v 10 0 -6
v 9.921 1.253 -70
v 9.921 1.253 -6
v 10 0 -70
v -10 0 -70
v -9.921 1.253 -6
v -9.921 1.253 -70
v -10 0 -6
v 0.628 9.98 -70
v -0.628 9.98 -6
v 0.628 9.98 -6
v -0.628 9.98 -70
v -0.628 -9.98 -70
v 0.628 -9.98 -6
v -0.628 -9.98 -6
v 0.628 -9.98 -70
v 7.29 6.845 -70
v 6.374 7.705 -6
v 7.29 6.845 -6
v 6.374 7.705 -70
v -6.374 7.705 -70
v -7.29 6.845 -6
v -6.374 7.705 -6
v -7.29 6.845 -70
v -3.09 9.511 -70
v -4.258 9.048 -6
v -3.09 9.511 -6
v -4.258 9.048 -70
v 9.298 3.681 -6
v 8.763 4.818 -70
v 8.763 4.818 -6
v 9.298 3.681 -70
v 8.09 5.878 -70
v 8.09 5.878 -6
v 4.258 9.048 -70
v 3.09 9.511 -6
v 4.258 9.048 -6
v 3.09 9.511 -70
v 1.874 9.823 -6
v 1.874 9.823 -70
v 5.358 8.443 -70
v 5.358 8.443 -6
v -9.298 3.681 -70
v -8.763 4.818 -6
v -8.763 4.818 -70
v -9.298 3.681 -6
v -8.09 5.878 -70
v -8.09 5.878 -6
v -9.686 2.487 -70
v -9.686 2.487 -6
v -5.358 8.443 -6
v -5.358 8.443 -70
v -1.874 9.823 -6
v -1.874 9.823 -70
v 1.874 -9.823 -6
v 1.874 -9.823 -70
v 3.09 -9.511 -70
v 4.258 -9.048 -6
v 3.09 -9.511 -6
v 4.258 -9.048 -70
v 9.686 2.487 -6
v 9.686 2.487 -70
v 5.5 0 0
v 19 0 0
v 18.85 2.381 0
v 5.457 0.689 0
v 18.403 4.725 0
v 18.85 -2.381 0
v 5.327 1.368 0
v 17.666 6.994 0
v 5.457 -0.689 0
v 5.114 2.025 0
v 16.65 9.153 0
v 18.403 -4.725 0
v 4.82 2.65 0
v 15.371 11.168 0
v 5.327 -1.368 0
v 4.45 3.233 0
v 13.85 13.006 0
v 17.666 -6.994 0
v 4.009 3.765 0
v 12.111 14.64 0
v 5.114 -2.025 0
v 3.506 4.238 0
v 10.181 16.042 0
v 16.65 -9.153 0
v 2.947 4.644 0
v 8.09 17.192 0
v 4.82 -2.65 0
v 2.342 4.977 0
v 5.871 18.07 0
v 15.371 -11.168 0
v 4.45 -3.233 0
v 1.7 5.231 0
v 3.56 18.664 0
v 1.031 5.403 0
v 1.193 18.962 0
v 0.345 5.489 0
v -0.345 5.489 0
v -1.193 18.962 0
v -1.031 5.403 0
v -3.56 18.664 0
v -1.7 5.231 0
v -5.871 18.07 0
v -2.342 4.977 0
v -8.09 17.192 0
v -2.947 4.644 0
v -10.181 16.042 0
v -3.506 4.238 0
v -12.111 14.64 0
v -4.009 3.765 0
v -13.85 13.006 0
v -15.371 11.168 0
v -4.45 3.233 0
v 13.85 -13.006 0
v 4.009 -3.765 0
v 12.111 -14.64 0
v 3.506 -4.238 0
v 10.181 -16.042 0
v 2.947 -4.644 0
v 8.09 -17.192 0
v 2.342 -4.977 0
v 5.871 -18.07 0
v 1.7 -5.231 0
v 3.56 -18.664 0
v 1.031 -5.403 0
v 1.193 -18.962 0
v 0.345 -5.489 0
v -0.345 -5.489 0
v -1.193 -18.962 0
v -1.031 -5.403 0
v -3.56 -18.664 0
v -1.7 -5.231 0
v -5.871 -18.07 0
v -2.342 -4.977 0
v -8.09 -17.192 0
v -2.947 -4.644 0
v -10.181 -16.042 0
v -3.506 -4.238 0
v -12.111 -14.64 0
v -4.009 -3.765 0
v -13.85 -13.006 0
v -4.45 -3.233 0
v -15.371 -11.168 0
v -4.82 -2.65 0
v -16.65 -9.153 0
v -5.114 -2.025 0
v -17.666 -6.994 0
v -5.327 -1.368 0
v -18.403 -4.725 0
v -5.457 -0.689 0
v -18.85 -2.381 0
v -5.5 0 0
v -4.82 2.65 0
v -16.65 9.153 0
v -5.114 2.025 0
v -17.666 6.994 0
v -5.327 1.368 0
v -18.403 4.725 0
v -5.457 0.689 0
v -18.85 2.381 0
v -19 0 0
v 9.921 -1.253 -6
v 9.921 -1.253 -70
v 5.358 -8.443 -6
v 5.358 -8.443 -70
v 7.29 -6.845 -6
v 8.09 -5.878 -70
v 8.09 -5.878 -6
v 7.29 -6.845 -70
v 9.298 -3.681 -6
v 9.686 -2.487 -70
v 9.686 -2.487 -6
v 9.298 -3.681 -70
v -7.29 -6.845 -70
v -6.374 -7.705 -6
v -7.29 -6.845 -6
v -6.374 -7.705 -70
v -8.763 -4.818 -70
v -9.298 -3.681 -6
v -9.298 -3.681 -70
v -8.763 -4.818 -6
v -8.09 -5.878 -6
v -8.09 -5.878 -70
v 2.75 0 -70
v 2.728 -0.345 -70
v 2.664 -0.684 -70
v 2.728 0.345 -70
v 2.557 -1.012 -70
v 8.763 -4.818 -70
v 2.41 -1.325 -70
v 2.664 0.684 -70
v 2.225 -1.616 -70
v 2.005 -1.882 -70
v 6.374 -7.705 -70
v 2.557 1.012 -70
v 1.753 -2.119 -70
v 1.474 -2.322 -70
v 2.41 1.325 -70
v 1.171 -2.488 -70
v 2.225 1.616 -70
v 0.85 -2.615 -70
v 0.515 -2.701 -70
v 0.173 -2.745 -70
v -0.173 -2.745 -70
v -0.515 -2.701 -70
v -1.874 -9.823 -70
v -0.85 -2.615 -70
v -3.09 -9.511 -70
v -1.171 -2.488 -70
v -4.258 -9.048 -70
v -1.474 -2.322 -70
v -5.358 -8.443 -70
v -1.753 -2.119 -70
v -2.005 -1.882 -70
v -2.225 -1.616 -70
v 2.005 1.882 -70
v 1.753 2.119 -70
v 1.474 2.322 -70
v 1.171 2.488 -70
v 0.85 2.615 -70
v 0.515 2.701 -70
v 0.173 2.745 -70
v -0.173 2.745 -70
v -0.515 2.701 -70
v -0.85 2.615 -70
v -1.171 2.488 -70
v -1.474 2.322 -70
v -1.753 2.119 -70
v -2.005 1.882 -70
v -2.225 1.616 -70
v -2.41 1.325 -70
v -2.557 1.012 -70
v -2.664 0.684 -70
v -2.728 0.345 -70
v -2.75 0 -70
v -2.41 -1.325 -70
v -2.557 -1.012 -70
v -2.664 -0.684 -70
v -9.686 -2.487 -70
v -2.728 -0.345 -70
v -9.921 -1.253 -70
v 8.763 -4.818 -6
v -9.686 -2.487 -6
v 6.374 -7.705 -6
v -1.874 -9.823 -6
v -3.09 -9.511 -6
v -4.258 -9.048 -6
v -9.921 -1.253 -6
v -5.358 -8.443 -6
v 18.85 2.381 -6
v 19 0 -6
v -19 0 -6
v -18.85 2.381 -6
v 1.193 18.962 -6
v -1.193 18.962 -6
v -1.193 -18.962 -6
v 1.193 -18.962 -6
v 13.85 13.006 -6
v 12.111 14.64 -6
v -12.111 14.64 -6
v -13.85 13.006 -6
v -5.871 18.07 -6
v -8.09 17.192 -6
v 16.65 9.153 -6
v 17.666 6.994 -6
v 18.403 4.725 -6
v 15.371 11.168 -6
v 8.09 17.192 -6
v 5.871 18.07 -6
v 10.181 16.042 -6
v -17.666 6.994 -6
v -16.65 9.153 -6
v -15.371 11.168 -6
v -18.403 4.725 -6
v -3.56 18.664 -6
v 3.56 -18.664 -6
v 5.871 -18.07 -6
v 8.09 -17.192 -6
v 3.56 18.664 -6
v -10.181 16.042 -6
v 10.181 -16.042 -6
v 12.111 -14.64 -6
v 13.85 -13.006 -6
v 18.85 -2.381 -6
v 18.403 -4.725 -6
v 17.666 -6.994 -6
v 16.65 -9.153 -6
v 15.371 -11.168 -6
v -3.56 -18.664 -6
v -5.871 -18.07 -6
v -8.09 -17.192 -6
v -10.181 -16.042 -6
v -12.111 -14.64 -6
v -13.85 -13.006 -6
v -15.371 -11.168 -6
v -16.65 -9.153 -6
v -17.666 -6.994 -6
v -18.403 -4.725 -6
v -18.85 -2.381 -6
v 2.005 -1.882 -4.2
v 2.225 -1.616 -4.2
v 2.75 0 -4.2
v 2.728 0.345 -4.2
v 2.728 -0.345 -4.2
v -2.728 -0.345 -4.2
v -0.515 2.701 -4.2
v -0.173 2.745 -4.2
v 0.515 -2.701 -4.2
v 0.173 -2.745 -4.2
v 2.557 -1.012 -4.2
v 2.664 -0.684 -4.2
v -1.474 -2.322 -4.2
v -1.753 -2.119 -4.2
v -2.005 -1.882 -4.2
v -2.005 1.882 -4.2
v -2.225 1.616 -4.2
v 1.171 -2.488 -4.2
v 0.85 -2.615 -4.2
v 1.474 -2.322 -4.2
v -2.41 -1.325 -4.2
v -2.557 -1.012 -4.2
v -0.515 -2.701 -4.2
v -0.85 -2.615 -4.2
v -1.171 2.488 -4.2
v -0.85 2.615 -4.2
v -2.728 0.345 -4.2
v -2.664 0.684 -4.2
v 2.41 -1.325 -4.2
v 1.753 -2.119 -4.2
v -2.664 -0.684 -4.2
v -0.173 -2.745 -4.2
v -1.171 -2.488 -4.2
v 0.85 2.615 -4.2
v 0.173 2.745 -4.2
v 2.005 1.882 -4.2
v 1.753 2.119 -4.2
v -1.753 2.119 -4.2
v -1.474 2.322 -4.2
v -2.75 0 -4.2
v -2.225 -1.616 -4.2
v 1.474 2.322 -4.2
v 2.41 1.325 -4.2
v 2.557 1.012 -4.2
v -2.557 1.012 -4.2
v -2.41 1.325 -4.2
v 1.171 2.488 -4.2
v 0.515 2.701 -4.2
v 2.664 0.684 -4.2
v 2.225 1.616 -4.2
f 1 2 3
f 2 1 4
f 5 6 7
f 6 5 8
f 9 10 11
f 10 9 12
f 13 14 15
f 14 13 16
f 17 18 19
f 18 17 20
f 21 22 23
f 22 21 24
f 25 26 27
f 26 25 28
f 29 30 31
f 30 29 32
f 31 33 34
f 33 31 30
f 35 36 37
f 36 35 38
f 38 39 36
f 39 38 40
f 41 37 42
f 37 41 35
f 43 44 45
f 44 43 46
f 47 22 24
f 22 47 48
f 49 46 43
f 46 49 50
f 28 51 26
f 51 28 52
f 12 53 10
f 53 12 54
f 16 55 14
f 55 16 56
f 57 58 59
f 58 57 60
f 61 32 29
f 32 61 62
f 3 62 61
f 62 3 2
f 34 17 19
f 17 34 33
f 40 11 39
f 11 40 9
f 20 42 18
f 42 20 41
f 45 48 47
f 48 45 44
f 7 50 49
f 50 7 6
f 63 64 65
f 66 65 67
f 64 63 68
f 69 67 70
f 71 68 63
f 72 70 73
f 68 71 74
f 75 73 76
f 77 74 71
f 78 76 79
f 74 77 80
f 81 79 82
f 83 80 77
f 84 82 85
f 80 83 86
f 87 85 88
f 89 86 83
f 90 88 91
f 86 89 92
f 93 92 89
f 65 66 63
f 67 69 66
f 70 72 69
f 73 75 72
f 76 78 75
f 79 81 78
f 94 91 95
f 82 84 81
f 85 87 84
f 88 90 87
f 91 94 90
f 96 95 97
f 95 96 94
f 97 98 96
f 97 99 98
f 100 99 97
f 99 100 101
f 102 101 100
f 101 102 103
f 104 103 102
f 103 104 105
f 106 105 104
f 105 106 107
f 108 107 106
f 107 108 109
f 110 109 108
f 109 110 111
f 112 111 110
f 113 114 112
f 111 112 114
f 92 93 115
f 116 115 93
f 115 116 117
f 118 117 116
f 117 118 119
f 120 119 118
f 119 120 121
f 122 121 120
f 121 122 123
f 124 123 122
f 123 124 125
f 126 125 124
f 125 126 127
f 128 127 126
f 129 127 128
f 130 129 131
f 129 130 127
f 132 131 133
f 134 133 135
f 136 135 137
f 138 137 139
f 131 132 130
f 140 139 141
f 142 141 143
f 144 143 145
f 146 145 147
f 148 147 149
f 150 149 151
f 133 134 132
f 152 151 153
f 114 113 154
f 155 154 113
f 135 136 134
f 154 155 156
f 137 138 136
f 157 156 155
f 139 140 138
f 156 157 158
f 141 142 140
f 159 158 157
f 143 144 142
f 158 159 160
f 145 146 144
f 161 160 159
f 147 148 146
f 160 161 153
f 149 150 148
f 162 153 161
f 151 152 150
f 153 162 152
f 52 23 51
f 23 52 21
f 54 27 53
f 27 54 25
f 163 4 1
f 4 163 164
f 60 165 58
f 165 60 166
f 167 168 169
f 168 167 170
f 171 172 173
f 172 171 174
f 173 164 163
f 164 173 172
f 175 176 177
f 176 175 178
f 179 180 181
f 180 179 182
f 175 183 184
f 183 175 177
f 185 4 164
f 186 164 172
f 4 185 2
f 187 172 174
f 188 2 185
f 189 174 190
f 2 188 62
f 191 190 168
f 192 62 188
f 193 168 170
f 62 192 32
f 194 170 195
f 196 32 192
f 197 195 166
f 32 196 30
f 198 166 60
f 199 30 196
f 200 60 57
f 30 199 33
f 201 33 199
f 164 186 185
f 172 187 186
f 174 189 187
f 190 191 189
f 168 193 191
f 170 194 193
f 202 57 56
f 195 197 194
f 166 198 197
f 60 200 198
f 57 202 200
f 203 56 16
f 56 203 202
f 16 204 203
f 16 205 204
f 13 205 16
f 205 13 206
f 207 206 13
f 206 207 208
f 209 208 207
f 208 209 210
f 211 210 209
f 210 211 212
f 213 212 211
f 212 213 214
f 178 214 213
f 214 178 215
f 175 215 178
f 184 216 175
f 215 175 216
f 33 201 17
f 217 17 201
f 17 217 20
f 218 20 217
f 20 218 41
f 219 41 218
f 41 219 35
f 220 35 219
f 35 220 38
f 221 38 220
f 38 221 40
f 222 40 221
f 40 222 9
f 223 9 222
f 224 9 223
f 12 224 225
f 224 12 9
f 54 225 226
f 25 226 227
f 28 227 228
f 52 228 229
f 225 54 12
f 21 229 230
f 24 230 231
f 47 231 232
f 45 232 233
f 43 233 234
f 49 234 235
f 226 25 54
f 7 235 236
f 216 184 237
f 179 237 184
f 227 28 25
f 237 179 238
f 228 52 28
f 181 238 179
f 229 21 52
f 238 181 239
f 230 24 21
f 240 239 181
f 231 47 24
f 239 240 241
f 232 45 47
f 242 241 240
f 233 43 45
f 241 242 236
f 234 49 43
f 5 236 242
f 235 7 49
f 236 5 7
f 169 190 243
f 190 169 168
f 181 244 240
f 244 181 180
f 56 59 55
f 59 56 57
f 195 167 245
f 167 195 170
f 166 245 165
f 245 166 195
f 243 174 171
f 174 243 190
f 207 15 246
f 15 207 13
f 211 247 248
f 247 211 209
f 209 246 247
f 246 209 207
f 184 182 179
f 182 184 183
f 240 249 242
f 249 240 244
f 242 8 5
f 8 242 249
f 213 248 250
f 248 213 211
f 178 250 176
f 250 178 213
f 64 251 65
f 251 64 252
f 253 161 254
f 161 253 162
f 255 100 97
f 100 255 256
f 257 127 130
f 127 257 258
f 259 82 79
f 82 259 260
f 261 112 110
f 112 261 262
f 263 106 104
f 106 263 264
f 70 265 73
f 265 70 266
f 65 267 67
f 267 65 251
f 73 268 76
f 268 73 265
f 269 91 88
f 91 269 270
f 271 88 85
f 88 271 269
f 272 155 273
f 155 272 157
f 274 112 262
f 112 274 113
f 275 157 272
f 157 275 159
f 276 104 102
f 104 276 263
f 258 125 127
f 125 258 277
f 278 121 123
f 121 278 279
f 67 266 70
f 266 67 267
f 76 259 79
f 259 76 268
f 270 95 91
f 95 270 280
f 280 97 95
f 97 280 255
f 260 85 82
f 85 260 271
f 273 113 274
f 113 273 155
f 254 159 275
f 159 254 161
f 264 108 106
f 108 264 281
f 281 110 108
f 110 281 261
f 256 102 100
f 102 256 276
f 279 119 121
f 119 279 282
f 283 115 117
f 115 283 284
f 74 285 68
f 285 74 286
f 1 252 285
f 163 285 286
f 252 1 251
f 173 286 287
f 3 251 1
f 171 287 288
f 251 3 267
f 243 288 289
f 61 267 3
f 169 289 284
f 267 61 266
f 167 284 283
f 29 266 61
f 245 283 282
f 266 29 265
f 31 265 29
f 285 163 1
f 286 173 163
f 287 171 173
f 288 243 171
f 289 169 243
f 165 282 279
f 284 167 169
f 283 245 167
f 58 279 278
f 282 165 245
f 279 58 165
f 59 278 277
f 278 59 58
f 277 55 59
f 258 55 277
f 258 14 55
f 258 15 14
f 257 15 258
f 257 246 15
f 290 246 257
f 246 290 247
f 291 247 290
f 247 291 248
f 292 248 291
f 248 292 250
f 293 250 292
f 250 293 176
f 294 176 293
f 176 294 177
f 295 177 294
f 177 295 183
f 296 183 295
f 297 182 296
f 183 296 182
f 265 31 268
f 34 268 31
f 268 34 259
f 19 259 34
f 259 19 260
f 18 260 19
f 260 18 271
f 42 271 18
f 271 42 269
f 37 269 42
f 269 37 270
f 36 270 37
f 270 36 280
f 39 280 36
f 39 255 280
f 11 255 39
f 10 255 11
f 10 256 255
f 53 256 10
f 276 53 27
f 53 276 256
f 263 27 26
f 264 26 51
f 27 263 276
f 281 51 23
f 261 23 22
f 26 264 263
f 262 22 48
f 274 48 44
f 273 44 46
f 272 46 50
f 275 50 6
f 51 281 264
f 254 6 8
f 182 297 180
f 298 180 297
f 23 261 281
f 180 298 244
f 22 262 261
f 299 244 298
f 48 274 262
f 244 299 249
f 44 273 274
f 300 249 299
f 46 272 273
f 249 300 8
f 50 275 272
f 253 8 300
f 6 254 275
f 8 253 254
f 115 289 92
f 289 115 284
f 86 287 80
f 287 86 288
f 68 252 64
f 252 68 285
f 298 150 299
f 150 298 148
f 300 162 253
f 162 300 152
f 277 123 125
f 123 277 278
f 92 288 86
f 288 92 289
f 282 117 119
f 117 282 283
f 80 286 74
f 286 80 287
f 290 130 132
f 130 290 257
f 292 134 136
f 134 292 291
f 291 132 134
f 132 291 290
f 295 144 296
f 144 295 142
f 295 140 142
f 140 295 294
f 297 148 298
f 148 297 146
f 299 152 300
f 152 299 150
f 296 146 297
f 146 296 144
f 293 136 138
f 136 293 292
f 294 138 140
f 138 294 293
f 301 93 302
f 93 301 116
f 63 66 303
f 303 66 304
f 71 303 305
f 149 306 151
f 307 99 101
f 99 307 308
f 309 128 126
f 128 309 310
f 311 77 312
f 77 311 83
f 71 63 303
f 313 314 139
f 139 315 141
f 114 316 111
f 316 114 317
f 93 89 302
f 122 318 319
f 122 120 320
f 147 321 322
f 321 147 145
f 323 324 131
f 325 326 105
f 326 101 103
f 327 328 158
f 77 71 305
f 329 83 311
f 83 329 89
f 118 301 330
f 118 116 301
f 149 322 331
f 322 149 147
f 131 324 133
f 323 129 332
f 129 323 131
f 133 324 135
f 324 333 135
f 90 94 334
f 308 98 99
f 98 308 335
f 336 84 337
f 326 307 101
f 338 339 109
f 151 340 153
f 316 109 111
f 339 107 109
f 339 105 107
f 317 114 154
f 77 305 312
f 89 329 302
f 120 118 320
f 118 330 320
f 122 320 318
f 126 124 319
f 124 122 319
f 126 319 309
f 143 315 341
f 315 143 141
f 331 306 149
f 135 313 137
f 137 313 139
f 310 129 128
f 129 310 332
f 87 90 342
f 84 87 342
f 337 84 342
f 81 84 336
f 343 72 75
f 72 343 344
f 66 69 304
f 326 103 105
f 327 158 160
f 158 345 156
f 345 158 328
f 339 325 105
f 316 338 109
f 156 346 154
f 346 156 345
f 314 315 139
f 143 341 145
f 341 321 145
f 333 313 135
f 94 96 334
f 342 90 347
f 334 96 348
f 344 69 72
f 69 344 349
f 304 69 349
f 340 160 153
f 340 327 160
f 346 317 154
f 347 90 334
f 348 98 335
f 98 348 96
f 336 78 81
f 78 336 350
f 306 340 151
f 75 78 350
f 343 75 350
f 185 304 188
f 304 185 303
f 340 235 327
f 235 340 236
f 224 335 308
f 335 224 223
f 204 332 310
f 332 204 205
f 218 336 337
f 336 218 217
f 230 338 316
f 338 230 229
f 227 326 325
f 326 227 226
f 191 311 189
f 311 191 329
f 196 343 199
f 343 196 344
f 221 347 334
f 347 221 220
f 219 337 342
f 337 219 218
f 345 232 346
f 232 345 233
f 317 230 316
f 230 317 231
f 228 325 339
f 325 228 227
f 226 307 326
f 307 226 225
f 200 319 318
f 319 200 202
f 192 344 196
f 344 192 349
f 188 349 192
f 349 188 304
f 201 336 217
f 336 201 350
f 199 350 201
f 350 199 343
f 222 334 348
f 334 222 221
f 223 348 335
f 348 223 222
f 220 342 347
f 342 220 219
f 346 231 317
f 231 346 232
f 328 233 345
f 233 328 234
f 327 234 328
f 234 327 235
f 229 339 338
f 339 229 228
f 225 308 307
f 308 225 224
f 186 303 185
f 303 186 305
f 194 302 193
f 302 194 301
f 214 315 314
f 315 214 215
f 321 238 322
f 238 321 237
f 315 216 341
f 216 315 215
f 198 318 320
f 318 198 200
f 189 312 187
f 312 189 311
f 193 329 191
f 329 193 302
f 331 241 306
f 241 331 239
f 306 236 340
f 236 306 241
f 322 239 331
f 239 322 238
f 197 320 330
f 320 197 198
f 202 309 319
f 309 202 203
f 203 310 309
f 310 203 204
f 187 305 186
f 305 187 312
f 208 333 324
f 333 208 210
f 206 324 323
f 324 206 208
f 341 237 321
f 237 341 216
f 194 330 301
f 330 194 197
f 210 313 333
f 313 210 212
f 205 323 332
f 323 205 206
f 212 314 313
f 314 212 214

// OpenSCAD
$fn = 50;


difference() {
	union() {
		translate(v = [0, 0, -70.0000000000]) {
			cylinder(h = 70, r = 10.0000000000);
		}
		translate(v = [0, 0, -6.0000000000]) {
			cylinder(h = 6, r = 19.0000000000);
		}
	}
	union() {
		translate(v = [0, 0, 0]) {
			rotate(a = [0, 0, 0]) {
				difference() {
					union() {
						#translate(v = [0, 0, -70.0000000000]) {
							cylinder(h = 70, r = 2.2500000000);
						}
						#translate(v = [0, 0, -4.2000000000]) {
							cylinder(h = 4.2000000000, r = 10.0000000000, r1 = 2.7500000000, r2 = 5.5000000000);
						}
						#translate(v = [0, 0, -70.0000000000]) {
							cylinder(h = 70, r = 2.7500000000);
						}
						#translate(v = [0, 0, -70.0000000000]) {
							cylinder(h = 70, r = 2.2500000000);
						}
					}
					union();
				}
			}
		}
	}
}
